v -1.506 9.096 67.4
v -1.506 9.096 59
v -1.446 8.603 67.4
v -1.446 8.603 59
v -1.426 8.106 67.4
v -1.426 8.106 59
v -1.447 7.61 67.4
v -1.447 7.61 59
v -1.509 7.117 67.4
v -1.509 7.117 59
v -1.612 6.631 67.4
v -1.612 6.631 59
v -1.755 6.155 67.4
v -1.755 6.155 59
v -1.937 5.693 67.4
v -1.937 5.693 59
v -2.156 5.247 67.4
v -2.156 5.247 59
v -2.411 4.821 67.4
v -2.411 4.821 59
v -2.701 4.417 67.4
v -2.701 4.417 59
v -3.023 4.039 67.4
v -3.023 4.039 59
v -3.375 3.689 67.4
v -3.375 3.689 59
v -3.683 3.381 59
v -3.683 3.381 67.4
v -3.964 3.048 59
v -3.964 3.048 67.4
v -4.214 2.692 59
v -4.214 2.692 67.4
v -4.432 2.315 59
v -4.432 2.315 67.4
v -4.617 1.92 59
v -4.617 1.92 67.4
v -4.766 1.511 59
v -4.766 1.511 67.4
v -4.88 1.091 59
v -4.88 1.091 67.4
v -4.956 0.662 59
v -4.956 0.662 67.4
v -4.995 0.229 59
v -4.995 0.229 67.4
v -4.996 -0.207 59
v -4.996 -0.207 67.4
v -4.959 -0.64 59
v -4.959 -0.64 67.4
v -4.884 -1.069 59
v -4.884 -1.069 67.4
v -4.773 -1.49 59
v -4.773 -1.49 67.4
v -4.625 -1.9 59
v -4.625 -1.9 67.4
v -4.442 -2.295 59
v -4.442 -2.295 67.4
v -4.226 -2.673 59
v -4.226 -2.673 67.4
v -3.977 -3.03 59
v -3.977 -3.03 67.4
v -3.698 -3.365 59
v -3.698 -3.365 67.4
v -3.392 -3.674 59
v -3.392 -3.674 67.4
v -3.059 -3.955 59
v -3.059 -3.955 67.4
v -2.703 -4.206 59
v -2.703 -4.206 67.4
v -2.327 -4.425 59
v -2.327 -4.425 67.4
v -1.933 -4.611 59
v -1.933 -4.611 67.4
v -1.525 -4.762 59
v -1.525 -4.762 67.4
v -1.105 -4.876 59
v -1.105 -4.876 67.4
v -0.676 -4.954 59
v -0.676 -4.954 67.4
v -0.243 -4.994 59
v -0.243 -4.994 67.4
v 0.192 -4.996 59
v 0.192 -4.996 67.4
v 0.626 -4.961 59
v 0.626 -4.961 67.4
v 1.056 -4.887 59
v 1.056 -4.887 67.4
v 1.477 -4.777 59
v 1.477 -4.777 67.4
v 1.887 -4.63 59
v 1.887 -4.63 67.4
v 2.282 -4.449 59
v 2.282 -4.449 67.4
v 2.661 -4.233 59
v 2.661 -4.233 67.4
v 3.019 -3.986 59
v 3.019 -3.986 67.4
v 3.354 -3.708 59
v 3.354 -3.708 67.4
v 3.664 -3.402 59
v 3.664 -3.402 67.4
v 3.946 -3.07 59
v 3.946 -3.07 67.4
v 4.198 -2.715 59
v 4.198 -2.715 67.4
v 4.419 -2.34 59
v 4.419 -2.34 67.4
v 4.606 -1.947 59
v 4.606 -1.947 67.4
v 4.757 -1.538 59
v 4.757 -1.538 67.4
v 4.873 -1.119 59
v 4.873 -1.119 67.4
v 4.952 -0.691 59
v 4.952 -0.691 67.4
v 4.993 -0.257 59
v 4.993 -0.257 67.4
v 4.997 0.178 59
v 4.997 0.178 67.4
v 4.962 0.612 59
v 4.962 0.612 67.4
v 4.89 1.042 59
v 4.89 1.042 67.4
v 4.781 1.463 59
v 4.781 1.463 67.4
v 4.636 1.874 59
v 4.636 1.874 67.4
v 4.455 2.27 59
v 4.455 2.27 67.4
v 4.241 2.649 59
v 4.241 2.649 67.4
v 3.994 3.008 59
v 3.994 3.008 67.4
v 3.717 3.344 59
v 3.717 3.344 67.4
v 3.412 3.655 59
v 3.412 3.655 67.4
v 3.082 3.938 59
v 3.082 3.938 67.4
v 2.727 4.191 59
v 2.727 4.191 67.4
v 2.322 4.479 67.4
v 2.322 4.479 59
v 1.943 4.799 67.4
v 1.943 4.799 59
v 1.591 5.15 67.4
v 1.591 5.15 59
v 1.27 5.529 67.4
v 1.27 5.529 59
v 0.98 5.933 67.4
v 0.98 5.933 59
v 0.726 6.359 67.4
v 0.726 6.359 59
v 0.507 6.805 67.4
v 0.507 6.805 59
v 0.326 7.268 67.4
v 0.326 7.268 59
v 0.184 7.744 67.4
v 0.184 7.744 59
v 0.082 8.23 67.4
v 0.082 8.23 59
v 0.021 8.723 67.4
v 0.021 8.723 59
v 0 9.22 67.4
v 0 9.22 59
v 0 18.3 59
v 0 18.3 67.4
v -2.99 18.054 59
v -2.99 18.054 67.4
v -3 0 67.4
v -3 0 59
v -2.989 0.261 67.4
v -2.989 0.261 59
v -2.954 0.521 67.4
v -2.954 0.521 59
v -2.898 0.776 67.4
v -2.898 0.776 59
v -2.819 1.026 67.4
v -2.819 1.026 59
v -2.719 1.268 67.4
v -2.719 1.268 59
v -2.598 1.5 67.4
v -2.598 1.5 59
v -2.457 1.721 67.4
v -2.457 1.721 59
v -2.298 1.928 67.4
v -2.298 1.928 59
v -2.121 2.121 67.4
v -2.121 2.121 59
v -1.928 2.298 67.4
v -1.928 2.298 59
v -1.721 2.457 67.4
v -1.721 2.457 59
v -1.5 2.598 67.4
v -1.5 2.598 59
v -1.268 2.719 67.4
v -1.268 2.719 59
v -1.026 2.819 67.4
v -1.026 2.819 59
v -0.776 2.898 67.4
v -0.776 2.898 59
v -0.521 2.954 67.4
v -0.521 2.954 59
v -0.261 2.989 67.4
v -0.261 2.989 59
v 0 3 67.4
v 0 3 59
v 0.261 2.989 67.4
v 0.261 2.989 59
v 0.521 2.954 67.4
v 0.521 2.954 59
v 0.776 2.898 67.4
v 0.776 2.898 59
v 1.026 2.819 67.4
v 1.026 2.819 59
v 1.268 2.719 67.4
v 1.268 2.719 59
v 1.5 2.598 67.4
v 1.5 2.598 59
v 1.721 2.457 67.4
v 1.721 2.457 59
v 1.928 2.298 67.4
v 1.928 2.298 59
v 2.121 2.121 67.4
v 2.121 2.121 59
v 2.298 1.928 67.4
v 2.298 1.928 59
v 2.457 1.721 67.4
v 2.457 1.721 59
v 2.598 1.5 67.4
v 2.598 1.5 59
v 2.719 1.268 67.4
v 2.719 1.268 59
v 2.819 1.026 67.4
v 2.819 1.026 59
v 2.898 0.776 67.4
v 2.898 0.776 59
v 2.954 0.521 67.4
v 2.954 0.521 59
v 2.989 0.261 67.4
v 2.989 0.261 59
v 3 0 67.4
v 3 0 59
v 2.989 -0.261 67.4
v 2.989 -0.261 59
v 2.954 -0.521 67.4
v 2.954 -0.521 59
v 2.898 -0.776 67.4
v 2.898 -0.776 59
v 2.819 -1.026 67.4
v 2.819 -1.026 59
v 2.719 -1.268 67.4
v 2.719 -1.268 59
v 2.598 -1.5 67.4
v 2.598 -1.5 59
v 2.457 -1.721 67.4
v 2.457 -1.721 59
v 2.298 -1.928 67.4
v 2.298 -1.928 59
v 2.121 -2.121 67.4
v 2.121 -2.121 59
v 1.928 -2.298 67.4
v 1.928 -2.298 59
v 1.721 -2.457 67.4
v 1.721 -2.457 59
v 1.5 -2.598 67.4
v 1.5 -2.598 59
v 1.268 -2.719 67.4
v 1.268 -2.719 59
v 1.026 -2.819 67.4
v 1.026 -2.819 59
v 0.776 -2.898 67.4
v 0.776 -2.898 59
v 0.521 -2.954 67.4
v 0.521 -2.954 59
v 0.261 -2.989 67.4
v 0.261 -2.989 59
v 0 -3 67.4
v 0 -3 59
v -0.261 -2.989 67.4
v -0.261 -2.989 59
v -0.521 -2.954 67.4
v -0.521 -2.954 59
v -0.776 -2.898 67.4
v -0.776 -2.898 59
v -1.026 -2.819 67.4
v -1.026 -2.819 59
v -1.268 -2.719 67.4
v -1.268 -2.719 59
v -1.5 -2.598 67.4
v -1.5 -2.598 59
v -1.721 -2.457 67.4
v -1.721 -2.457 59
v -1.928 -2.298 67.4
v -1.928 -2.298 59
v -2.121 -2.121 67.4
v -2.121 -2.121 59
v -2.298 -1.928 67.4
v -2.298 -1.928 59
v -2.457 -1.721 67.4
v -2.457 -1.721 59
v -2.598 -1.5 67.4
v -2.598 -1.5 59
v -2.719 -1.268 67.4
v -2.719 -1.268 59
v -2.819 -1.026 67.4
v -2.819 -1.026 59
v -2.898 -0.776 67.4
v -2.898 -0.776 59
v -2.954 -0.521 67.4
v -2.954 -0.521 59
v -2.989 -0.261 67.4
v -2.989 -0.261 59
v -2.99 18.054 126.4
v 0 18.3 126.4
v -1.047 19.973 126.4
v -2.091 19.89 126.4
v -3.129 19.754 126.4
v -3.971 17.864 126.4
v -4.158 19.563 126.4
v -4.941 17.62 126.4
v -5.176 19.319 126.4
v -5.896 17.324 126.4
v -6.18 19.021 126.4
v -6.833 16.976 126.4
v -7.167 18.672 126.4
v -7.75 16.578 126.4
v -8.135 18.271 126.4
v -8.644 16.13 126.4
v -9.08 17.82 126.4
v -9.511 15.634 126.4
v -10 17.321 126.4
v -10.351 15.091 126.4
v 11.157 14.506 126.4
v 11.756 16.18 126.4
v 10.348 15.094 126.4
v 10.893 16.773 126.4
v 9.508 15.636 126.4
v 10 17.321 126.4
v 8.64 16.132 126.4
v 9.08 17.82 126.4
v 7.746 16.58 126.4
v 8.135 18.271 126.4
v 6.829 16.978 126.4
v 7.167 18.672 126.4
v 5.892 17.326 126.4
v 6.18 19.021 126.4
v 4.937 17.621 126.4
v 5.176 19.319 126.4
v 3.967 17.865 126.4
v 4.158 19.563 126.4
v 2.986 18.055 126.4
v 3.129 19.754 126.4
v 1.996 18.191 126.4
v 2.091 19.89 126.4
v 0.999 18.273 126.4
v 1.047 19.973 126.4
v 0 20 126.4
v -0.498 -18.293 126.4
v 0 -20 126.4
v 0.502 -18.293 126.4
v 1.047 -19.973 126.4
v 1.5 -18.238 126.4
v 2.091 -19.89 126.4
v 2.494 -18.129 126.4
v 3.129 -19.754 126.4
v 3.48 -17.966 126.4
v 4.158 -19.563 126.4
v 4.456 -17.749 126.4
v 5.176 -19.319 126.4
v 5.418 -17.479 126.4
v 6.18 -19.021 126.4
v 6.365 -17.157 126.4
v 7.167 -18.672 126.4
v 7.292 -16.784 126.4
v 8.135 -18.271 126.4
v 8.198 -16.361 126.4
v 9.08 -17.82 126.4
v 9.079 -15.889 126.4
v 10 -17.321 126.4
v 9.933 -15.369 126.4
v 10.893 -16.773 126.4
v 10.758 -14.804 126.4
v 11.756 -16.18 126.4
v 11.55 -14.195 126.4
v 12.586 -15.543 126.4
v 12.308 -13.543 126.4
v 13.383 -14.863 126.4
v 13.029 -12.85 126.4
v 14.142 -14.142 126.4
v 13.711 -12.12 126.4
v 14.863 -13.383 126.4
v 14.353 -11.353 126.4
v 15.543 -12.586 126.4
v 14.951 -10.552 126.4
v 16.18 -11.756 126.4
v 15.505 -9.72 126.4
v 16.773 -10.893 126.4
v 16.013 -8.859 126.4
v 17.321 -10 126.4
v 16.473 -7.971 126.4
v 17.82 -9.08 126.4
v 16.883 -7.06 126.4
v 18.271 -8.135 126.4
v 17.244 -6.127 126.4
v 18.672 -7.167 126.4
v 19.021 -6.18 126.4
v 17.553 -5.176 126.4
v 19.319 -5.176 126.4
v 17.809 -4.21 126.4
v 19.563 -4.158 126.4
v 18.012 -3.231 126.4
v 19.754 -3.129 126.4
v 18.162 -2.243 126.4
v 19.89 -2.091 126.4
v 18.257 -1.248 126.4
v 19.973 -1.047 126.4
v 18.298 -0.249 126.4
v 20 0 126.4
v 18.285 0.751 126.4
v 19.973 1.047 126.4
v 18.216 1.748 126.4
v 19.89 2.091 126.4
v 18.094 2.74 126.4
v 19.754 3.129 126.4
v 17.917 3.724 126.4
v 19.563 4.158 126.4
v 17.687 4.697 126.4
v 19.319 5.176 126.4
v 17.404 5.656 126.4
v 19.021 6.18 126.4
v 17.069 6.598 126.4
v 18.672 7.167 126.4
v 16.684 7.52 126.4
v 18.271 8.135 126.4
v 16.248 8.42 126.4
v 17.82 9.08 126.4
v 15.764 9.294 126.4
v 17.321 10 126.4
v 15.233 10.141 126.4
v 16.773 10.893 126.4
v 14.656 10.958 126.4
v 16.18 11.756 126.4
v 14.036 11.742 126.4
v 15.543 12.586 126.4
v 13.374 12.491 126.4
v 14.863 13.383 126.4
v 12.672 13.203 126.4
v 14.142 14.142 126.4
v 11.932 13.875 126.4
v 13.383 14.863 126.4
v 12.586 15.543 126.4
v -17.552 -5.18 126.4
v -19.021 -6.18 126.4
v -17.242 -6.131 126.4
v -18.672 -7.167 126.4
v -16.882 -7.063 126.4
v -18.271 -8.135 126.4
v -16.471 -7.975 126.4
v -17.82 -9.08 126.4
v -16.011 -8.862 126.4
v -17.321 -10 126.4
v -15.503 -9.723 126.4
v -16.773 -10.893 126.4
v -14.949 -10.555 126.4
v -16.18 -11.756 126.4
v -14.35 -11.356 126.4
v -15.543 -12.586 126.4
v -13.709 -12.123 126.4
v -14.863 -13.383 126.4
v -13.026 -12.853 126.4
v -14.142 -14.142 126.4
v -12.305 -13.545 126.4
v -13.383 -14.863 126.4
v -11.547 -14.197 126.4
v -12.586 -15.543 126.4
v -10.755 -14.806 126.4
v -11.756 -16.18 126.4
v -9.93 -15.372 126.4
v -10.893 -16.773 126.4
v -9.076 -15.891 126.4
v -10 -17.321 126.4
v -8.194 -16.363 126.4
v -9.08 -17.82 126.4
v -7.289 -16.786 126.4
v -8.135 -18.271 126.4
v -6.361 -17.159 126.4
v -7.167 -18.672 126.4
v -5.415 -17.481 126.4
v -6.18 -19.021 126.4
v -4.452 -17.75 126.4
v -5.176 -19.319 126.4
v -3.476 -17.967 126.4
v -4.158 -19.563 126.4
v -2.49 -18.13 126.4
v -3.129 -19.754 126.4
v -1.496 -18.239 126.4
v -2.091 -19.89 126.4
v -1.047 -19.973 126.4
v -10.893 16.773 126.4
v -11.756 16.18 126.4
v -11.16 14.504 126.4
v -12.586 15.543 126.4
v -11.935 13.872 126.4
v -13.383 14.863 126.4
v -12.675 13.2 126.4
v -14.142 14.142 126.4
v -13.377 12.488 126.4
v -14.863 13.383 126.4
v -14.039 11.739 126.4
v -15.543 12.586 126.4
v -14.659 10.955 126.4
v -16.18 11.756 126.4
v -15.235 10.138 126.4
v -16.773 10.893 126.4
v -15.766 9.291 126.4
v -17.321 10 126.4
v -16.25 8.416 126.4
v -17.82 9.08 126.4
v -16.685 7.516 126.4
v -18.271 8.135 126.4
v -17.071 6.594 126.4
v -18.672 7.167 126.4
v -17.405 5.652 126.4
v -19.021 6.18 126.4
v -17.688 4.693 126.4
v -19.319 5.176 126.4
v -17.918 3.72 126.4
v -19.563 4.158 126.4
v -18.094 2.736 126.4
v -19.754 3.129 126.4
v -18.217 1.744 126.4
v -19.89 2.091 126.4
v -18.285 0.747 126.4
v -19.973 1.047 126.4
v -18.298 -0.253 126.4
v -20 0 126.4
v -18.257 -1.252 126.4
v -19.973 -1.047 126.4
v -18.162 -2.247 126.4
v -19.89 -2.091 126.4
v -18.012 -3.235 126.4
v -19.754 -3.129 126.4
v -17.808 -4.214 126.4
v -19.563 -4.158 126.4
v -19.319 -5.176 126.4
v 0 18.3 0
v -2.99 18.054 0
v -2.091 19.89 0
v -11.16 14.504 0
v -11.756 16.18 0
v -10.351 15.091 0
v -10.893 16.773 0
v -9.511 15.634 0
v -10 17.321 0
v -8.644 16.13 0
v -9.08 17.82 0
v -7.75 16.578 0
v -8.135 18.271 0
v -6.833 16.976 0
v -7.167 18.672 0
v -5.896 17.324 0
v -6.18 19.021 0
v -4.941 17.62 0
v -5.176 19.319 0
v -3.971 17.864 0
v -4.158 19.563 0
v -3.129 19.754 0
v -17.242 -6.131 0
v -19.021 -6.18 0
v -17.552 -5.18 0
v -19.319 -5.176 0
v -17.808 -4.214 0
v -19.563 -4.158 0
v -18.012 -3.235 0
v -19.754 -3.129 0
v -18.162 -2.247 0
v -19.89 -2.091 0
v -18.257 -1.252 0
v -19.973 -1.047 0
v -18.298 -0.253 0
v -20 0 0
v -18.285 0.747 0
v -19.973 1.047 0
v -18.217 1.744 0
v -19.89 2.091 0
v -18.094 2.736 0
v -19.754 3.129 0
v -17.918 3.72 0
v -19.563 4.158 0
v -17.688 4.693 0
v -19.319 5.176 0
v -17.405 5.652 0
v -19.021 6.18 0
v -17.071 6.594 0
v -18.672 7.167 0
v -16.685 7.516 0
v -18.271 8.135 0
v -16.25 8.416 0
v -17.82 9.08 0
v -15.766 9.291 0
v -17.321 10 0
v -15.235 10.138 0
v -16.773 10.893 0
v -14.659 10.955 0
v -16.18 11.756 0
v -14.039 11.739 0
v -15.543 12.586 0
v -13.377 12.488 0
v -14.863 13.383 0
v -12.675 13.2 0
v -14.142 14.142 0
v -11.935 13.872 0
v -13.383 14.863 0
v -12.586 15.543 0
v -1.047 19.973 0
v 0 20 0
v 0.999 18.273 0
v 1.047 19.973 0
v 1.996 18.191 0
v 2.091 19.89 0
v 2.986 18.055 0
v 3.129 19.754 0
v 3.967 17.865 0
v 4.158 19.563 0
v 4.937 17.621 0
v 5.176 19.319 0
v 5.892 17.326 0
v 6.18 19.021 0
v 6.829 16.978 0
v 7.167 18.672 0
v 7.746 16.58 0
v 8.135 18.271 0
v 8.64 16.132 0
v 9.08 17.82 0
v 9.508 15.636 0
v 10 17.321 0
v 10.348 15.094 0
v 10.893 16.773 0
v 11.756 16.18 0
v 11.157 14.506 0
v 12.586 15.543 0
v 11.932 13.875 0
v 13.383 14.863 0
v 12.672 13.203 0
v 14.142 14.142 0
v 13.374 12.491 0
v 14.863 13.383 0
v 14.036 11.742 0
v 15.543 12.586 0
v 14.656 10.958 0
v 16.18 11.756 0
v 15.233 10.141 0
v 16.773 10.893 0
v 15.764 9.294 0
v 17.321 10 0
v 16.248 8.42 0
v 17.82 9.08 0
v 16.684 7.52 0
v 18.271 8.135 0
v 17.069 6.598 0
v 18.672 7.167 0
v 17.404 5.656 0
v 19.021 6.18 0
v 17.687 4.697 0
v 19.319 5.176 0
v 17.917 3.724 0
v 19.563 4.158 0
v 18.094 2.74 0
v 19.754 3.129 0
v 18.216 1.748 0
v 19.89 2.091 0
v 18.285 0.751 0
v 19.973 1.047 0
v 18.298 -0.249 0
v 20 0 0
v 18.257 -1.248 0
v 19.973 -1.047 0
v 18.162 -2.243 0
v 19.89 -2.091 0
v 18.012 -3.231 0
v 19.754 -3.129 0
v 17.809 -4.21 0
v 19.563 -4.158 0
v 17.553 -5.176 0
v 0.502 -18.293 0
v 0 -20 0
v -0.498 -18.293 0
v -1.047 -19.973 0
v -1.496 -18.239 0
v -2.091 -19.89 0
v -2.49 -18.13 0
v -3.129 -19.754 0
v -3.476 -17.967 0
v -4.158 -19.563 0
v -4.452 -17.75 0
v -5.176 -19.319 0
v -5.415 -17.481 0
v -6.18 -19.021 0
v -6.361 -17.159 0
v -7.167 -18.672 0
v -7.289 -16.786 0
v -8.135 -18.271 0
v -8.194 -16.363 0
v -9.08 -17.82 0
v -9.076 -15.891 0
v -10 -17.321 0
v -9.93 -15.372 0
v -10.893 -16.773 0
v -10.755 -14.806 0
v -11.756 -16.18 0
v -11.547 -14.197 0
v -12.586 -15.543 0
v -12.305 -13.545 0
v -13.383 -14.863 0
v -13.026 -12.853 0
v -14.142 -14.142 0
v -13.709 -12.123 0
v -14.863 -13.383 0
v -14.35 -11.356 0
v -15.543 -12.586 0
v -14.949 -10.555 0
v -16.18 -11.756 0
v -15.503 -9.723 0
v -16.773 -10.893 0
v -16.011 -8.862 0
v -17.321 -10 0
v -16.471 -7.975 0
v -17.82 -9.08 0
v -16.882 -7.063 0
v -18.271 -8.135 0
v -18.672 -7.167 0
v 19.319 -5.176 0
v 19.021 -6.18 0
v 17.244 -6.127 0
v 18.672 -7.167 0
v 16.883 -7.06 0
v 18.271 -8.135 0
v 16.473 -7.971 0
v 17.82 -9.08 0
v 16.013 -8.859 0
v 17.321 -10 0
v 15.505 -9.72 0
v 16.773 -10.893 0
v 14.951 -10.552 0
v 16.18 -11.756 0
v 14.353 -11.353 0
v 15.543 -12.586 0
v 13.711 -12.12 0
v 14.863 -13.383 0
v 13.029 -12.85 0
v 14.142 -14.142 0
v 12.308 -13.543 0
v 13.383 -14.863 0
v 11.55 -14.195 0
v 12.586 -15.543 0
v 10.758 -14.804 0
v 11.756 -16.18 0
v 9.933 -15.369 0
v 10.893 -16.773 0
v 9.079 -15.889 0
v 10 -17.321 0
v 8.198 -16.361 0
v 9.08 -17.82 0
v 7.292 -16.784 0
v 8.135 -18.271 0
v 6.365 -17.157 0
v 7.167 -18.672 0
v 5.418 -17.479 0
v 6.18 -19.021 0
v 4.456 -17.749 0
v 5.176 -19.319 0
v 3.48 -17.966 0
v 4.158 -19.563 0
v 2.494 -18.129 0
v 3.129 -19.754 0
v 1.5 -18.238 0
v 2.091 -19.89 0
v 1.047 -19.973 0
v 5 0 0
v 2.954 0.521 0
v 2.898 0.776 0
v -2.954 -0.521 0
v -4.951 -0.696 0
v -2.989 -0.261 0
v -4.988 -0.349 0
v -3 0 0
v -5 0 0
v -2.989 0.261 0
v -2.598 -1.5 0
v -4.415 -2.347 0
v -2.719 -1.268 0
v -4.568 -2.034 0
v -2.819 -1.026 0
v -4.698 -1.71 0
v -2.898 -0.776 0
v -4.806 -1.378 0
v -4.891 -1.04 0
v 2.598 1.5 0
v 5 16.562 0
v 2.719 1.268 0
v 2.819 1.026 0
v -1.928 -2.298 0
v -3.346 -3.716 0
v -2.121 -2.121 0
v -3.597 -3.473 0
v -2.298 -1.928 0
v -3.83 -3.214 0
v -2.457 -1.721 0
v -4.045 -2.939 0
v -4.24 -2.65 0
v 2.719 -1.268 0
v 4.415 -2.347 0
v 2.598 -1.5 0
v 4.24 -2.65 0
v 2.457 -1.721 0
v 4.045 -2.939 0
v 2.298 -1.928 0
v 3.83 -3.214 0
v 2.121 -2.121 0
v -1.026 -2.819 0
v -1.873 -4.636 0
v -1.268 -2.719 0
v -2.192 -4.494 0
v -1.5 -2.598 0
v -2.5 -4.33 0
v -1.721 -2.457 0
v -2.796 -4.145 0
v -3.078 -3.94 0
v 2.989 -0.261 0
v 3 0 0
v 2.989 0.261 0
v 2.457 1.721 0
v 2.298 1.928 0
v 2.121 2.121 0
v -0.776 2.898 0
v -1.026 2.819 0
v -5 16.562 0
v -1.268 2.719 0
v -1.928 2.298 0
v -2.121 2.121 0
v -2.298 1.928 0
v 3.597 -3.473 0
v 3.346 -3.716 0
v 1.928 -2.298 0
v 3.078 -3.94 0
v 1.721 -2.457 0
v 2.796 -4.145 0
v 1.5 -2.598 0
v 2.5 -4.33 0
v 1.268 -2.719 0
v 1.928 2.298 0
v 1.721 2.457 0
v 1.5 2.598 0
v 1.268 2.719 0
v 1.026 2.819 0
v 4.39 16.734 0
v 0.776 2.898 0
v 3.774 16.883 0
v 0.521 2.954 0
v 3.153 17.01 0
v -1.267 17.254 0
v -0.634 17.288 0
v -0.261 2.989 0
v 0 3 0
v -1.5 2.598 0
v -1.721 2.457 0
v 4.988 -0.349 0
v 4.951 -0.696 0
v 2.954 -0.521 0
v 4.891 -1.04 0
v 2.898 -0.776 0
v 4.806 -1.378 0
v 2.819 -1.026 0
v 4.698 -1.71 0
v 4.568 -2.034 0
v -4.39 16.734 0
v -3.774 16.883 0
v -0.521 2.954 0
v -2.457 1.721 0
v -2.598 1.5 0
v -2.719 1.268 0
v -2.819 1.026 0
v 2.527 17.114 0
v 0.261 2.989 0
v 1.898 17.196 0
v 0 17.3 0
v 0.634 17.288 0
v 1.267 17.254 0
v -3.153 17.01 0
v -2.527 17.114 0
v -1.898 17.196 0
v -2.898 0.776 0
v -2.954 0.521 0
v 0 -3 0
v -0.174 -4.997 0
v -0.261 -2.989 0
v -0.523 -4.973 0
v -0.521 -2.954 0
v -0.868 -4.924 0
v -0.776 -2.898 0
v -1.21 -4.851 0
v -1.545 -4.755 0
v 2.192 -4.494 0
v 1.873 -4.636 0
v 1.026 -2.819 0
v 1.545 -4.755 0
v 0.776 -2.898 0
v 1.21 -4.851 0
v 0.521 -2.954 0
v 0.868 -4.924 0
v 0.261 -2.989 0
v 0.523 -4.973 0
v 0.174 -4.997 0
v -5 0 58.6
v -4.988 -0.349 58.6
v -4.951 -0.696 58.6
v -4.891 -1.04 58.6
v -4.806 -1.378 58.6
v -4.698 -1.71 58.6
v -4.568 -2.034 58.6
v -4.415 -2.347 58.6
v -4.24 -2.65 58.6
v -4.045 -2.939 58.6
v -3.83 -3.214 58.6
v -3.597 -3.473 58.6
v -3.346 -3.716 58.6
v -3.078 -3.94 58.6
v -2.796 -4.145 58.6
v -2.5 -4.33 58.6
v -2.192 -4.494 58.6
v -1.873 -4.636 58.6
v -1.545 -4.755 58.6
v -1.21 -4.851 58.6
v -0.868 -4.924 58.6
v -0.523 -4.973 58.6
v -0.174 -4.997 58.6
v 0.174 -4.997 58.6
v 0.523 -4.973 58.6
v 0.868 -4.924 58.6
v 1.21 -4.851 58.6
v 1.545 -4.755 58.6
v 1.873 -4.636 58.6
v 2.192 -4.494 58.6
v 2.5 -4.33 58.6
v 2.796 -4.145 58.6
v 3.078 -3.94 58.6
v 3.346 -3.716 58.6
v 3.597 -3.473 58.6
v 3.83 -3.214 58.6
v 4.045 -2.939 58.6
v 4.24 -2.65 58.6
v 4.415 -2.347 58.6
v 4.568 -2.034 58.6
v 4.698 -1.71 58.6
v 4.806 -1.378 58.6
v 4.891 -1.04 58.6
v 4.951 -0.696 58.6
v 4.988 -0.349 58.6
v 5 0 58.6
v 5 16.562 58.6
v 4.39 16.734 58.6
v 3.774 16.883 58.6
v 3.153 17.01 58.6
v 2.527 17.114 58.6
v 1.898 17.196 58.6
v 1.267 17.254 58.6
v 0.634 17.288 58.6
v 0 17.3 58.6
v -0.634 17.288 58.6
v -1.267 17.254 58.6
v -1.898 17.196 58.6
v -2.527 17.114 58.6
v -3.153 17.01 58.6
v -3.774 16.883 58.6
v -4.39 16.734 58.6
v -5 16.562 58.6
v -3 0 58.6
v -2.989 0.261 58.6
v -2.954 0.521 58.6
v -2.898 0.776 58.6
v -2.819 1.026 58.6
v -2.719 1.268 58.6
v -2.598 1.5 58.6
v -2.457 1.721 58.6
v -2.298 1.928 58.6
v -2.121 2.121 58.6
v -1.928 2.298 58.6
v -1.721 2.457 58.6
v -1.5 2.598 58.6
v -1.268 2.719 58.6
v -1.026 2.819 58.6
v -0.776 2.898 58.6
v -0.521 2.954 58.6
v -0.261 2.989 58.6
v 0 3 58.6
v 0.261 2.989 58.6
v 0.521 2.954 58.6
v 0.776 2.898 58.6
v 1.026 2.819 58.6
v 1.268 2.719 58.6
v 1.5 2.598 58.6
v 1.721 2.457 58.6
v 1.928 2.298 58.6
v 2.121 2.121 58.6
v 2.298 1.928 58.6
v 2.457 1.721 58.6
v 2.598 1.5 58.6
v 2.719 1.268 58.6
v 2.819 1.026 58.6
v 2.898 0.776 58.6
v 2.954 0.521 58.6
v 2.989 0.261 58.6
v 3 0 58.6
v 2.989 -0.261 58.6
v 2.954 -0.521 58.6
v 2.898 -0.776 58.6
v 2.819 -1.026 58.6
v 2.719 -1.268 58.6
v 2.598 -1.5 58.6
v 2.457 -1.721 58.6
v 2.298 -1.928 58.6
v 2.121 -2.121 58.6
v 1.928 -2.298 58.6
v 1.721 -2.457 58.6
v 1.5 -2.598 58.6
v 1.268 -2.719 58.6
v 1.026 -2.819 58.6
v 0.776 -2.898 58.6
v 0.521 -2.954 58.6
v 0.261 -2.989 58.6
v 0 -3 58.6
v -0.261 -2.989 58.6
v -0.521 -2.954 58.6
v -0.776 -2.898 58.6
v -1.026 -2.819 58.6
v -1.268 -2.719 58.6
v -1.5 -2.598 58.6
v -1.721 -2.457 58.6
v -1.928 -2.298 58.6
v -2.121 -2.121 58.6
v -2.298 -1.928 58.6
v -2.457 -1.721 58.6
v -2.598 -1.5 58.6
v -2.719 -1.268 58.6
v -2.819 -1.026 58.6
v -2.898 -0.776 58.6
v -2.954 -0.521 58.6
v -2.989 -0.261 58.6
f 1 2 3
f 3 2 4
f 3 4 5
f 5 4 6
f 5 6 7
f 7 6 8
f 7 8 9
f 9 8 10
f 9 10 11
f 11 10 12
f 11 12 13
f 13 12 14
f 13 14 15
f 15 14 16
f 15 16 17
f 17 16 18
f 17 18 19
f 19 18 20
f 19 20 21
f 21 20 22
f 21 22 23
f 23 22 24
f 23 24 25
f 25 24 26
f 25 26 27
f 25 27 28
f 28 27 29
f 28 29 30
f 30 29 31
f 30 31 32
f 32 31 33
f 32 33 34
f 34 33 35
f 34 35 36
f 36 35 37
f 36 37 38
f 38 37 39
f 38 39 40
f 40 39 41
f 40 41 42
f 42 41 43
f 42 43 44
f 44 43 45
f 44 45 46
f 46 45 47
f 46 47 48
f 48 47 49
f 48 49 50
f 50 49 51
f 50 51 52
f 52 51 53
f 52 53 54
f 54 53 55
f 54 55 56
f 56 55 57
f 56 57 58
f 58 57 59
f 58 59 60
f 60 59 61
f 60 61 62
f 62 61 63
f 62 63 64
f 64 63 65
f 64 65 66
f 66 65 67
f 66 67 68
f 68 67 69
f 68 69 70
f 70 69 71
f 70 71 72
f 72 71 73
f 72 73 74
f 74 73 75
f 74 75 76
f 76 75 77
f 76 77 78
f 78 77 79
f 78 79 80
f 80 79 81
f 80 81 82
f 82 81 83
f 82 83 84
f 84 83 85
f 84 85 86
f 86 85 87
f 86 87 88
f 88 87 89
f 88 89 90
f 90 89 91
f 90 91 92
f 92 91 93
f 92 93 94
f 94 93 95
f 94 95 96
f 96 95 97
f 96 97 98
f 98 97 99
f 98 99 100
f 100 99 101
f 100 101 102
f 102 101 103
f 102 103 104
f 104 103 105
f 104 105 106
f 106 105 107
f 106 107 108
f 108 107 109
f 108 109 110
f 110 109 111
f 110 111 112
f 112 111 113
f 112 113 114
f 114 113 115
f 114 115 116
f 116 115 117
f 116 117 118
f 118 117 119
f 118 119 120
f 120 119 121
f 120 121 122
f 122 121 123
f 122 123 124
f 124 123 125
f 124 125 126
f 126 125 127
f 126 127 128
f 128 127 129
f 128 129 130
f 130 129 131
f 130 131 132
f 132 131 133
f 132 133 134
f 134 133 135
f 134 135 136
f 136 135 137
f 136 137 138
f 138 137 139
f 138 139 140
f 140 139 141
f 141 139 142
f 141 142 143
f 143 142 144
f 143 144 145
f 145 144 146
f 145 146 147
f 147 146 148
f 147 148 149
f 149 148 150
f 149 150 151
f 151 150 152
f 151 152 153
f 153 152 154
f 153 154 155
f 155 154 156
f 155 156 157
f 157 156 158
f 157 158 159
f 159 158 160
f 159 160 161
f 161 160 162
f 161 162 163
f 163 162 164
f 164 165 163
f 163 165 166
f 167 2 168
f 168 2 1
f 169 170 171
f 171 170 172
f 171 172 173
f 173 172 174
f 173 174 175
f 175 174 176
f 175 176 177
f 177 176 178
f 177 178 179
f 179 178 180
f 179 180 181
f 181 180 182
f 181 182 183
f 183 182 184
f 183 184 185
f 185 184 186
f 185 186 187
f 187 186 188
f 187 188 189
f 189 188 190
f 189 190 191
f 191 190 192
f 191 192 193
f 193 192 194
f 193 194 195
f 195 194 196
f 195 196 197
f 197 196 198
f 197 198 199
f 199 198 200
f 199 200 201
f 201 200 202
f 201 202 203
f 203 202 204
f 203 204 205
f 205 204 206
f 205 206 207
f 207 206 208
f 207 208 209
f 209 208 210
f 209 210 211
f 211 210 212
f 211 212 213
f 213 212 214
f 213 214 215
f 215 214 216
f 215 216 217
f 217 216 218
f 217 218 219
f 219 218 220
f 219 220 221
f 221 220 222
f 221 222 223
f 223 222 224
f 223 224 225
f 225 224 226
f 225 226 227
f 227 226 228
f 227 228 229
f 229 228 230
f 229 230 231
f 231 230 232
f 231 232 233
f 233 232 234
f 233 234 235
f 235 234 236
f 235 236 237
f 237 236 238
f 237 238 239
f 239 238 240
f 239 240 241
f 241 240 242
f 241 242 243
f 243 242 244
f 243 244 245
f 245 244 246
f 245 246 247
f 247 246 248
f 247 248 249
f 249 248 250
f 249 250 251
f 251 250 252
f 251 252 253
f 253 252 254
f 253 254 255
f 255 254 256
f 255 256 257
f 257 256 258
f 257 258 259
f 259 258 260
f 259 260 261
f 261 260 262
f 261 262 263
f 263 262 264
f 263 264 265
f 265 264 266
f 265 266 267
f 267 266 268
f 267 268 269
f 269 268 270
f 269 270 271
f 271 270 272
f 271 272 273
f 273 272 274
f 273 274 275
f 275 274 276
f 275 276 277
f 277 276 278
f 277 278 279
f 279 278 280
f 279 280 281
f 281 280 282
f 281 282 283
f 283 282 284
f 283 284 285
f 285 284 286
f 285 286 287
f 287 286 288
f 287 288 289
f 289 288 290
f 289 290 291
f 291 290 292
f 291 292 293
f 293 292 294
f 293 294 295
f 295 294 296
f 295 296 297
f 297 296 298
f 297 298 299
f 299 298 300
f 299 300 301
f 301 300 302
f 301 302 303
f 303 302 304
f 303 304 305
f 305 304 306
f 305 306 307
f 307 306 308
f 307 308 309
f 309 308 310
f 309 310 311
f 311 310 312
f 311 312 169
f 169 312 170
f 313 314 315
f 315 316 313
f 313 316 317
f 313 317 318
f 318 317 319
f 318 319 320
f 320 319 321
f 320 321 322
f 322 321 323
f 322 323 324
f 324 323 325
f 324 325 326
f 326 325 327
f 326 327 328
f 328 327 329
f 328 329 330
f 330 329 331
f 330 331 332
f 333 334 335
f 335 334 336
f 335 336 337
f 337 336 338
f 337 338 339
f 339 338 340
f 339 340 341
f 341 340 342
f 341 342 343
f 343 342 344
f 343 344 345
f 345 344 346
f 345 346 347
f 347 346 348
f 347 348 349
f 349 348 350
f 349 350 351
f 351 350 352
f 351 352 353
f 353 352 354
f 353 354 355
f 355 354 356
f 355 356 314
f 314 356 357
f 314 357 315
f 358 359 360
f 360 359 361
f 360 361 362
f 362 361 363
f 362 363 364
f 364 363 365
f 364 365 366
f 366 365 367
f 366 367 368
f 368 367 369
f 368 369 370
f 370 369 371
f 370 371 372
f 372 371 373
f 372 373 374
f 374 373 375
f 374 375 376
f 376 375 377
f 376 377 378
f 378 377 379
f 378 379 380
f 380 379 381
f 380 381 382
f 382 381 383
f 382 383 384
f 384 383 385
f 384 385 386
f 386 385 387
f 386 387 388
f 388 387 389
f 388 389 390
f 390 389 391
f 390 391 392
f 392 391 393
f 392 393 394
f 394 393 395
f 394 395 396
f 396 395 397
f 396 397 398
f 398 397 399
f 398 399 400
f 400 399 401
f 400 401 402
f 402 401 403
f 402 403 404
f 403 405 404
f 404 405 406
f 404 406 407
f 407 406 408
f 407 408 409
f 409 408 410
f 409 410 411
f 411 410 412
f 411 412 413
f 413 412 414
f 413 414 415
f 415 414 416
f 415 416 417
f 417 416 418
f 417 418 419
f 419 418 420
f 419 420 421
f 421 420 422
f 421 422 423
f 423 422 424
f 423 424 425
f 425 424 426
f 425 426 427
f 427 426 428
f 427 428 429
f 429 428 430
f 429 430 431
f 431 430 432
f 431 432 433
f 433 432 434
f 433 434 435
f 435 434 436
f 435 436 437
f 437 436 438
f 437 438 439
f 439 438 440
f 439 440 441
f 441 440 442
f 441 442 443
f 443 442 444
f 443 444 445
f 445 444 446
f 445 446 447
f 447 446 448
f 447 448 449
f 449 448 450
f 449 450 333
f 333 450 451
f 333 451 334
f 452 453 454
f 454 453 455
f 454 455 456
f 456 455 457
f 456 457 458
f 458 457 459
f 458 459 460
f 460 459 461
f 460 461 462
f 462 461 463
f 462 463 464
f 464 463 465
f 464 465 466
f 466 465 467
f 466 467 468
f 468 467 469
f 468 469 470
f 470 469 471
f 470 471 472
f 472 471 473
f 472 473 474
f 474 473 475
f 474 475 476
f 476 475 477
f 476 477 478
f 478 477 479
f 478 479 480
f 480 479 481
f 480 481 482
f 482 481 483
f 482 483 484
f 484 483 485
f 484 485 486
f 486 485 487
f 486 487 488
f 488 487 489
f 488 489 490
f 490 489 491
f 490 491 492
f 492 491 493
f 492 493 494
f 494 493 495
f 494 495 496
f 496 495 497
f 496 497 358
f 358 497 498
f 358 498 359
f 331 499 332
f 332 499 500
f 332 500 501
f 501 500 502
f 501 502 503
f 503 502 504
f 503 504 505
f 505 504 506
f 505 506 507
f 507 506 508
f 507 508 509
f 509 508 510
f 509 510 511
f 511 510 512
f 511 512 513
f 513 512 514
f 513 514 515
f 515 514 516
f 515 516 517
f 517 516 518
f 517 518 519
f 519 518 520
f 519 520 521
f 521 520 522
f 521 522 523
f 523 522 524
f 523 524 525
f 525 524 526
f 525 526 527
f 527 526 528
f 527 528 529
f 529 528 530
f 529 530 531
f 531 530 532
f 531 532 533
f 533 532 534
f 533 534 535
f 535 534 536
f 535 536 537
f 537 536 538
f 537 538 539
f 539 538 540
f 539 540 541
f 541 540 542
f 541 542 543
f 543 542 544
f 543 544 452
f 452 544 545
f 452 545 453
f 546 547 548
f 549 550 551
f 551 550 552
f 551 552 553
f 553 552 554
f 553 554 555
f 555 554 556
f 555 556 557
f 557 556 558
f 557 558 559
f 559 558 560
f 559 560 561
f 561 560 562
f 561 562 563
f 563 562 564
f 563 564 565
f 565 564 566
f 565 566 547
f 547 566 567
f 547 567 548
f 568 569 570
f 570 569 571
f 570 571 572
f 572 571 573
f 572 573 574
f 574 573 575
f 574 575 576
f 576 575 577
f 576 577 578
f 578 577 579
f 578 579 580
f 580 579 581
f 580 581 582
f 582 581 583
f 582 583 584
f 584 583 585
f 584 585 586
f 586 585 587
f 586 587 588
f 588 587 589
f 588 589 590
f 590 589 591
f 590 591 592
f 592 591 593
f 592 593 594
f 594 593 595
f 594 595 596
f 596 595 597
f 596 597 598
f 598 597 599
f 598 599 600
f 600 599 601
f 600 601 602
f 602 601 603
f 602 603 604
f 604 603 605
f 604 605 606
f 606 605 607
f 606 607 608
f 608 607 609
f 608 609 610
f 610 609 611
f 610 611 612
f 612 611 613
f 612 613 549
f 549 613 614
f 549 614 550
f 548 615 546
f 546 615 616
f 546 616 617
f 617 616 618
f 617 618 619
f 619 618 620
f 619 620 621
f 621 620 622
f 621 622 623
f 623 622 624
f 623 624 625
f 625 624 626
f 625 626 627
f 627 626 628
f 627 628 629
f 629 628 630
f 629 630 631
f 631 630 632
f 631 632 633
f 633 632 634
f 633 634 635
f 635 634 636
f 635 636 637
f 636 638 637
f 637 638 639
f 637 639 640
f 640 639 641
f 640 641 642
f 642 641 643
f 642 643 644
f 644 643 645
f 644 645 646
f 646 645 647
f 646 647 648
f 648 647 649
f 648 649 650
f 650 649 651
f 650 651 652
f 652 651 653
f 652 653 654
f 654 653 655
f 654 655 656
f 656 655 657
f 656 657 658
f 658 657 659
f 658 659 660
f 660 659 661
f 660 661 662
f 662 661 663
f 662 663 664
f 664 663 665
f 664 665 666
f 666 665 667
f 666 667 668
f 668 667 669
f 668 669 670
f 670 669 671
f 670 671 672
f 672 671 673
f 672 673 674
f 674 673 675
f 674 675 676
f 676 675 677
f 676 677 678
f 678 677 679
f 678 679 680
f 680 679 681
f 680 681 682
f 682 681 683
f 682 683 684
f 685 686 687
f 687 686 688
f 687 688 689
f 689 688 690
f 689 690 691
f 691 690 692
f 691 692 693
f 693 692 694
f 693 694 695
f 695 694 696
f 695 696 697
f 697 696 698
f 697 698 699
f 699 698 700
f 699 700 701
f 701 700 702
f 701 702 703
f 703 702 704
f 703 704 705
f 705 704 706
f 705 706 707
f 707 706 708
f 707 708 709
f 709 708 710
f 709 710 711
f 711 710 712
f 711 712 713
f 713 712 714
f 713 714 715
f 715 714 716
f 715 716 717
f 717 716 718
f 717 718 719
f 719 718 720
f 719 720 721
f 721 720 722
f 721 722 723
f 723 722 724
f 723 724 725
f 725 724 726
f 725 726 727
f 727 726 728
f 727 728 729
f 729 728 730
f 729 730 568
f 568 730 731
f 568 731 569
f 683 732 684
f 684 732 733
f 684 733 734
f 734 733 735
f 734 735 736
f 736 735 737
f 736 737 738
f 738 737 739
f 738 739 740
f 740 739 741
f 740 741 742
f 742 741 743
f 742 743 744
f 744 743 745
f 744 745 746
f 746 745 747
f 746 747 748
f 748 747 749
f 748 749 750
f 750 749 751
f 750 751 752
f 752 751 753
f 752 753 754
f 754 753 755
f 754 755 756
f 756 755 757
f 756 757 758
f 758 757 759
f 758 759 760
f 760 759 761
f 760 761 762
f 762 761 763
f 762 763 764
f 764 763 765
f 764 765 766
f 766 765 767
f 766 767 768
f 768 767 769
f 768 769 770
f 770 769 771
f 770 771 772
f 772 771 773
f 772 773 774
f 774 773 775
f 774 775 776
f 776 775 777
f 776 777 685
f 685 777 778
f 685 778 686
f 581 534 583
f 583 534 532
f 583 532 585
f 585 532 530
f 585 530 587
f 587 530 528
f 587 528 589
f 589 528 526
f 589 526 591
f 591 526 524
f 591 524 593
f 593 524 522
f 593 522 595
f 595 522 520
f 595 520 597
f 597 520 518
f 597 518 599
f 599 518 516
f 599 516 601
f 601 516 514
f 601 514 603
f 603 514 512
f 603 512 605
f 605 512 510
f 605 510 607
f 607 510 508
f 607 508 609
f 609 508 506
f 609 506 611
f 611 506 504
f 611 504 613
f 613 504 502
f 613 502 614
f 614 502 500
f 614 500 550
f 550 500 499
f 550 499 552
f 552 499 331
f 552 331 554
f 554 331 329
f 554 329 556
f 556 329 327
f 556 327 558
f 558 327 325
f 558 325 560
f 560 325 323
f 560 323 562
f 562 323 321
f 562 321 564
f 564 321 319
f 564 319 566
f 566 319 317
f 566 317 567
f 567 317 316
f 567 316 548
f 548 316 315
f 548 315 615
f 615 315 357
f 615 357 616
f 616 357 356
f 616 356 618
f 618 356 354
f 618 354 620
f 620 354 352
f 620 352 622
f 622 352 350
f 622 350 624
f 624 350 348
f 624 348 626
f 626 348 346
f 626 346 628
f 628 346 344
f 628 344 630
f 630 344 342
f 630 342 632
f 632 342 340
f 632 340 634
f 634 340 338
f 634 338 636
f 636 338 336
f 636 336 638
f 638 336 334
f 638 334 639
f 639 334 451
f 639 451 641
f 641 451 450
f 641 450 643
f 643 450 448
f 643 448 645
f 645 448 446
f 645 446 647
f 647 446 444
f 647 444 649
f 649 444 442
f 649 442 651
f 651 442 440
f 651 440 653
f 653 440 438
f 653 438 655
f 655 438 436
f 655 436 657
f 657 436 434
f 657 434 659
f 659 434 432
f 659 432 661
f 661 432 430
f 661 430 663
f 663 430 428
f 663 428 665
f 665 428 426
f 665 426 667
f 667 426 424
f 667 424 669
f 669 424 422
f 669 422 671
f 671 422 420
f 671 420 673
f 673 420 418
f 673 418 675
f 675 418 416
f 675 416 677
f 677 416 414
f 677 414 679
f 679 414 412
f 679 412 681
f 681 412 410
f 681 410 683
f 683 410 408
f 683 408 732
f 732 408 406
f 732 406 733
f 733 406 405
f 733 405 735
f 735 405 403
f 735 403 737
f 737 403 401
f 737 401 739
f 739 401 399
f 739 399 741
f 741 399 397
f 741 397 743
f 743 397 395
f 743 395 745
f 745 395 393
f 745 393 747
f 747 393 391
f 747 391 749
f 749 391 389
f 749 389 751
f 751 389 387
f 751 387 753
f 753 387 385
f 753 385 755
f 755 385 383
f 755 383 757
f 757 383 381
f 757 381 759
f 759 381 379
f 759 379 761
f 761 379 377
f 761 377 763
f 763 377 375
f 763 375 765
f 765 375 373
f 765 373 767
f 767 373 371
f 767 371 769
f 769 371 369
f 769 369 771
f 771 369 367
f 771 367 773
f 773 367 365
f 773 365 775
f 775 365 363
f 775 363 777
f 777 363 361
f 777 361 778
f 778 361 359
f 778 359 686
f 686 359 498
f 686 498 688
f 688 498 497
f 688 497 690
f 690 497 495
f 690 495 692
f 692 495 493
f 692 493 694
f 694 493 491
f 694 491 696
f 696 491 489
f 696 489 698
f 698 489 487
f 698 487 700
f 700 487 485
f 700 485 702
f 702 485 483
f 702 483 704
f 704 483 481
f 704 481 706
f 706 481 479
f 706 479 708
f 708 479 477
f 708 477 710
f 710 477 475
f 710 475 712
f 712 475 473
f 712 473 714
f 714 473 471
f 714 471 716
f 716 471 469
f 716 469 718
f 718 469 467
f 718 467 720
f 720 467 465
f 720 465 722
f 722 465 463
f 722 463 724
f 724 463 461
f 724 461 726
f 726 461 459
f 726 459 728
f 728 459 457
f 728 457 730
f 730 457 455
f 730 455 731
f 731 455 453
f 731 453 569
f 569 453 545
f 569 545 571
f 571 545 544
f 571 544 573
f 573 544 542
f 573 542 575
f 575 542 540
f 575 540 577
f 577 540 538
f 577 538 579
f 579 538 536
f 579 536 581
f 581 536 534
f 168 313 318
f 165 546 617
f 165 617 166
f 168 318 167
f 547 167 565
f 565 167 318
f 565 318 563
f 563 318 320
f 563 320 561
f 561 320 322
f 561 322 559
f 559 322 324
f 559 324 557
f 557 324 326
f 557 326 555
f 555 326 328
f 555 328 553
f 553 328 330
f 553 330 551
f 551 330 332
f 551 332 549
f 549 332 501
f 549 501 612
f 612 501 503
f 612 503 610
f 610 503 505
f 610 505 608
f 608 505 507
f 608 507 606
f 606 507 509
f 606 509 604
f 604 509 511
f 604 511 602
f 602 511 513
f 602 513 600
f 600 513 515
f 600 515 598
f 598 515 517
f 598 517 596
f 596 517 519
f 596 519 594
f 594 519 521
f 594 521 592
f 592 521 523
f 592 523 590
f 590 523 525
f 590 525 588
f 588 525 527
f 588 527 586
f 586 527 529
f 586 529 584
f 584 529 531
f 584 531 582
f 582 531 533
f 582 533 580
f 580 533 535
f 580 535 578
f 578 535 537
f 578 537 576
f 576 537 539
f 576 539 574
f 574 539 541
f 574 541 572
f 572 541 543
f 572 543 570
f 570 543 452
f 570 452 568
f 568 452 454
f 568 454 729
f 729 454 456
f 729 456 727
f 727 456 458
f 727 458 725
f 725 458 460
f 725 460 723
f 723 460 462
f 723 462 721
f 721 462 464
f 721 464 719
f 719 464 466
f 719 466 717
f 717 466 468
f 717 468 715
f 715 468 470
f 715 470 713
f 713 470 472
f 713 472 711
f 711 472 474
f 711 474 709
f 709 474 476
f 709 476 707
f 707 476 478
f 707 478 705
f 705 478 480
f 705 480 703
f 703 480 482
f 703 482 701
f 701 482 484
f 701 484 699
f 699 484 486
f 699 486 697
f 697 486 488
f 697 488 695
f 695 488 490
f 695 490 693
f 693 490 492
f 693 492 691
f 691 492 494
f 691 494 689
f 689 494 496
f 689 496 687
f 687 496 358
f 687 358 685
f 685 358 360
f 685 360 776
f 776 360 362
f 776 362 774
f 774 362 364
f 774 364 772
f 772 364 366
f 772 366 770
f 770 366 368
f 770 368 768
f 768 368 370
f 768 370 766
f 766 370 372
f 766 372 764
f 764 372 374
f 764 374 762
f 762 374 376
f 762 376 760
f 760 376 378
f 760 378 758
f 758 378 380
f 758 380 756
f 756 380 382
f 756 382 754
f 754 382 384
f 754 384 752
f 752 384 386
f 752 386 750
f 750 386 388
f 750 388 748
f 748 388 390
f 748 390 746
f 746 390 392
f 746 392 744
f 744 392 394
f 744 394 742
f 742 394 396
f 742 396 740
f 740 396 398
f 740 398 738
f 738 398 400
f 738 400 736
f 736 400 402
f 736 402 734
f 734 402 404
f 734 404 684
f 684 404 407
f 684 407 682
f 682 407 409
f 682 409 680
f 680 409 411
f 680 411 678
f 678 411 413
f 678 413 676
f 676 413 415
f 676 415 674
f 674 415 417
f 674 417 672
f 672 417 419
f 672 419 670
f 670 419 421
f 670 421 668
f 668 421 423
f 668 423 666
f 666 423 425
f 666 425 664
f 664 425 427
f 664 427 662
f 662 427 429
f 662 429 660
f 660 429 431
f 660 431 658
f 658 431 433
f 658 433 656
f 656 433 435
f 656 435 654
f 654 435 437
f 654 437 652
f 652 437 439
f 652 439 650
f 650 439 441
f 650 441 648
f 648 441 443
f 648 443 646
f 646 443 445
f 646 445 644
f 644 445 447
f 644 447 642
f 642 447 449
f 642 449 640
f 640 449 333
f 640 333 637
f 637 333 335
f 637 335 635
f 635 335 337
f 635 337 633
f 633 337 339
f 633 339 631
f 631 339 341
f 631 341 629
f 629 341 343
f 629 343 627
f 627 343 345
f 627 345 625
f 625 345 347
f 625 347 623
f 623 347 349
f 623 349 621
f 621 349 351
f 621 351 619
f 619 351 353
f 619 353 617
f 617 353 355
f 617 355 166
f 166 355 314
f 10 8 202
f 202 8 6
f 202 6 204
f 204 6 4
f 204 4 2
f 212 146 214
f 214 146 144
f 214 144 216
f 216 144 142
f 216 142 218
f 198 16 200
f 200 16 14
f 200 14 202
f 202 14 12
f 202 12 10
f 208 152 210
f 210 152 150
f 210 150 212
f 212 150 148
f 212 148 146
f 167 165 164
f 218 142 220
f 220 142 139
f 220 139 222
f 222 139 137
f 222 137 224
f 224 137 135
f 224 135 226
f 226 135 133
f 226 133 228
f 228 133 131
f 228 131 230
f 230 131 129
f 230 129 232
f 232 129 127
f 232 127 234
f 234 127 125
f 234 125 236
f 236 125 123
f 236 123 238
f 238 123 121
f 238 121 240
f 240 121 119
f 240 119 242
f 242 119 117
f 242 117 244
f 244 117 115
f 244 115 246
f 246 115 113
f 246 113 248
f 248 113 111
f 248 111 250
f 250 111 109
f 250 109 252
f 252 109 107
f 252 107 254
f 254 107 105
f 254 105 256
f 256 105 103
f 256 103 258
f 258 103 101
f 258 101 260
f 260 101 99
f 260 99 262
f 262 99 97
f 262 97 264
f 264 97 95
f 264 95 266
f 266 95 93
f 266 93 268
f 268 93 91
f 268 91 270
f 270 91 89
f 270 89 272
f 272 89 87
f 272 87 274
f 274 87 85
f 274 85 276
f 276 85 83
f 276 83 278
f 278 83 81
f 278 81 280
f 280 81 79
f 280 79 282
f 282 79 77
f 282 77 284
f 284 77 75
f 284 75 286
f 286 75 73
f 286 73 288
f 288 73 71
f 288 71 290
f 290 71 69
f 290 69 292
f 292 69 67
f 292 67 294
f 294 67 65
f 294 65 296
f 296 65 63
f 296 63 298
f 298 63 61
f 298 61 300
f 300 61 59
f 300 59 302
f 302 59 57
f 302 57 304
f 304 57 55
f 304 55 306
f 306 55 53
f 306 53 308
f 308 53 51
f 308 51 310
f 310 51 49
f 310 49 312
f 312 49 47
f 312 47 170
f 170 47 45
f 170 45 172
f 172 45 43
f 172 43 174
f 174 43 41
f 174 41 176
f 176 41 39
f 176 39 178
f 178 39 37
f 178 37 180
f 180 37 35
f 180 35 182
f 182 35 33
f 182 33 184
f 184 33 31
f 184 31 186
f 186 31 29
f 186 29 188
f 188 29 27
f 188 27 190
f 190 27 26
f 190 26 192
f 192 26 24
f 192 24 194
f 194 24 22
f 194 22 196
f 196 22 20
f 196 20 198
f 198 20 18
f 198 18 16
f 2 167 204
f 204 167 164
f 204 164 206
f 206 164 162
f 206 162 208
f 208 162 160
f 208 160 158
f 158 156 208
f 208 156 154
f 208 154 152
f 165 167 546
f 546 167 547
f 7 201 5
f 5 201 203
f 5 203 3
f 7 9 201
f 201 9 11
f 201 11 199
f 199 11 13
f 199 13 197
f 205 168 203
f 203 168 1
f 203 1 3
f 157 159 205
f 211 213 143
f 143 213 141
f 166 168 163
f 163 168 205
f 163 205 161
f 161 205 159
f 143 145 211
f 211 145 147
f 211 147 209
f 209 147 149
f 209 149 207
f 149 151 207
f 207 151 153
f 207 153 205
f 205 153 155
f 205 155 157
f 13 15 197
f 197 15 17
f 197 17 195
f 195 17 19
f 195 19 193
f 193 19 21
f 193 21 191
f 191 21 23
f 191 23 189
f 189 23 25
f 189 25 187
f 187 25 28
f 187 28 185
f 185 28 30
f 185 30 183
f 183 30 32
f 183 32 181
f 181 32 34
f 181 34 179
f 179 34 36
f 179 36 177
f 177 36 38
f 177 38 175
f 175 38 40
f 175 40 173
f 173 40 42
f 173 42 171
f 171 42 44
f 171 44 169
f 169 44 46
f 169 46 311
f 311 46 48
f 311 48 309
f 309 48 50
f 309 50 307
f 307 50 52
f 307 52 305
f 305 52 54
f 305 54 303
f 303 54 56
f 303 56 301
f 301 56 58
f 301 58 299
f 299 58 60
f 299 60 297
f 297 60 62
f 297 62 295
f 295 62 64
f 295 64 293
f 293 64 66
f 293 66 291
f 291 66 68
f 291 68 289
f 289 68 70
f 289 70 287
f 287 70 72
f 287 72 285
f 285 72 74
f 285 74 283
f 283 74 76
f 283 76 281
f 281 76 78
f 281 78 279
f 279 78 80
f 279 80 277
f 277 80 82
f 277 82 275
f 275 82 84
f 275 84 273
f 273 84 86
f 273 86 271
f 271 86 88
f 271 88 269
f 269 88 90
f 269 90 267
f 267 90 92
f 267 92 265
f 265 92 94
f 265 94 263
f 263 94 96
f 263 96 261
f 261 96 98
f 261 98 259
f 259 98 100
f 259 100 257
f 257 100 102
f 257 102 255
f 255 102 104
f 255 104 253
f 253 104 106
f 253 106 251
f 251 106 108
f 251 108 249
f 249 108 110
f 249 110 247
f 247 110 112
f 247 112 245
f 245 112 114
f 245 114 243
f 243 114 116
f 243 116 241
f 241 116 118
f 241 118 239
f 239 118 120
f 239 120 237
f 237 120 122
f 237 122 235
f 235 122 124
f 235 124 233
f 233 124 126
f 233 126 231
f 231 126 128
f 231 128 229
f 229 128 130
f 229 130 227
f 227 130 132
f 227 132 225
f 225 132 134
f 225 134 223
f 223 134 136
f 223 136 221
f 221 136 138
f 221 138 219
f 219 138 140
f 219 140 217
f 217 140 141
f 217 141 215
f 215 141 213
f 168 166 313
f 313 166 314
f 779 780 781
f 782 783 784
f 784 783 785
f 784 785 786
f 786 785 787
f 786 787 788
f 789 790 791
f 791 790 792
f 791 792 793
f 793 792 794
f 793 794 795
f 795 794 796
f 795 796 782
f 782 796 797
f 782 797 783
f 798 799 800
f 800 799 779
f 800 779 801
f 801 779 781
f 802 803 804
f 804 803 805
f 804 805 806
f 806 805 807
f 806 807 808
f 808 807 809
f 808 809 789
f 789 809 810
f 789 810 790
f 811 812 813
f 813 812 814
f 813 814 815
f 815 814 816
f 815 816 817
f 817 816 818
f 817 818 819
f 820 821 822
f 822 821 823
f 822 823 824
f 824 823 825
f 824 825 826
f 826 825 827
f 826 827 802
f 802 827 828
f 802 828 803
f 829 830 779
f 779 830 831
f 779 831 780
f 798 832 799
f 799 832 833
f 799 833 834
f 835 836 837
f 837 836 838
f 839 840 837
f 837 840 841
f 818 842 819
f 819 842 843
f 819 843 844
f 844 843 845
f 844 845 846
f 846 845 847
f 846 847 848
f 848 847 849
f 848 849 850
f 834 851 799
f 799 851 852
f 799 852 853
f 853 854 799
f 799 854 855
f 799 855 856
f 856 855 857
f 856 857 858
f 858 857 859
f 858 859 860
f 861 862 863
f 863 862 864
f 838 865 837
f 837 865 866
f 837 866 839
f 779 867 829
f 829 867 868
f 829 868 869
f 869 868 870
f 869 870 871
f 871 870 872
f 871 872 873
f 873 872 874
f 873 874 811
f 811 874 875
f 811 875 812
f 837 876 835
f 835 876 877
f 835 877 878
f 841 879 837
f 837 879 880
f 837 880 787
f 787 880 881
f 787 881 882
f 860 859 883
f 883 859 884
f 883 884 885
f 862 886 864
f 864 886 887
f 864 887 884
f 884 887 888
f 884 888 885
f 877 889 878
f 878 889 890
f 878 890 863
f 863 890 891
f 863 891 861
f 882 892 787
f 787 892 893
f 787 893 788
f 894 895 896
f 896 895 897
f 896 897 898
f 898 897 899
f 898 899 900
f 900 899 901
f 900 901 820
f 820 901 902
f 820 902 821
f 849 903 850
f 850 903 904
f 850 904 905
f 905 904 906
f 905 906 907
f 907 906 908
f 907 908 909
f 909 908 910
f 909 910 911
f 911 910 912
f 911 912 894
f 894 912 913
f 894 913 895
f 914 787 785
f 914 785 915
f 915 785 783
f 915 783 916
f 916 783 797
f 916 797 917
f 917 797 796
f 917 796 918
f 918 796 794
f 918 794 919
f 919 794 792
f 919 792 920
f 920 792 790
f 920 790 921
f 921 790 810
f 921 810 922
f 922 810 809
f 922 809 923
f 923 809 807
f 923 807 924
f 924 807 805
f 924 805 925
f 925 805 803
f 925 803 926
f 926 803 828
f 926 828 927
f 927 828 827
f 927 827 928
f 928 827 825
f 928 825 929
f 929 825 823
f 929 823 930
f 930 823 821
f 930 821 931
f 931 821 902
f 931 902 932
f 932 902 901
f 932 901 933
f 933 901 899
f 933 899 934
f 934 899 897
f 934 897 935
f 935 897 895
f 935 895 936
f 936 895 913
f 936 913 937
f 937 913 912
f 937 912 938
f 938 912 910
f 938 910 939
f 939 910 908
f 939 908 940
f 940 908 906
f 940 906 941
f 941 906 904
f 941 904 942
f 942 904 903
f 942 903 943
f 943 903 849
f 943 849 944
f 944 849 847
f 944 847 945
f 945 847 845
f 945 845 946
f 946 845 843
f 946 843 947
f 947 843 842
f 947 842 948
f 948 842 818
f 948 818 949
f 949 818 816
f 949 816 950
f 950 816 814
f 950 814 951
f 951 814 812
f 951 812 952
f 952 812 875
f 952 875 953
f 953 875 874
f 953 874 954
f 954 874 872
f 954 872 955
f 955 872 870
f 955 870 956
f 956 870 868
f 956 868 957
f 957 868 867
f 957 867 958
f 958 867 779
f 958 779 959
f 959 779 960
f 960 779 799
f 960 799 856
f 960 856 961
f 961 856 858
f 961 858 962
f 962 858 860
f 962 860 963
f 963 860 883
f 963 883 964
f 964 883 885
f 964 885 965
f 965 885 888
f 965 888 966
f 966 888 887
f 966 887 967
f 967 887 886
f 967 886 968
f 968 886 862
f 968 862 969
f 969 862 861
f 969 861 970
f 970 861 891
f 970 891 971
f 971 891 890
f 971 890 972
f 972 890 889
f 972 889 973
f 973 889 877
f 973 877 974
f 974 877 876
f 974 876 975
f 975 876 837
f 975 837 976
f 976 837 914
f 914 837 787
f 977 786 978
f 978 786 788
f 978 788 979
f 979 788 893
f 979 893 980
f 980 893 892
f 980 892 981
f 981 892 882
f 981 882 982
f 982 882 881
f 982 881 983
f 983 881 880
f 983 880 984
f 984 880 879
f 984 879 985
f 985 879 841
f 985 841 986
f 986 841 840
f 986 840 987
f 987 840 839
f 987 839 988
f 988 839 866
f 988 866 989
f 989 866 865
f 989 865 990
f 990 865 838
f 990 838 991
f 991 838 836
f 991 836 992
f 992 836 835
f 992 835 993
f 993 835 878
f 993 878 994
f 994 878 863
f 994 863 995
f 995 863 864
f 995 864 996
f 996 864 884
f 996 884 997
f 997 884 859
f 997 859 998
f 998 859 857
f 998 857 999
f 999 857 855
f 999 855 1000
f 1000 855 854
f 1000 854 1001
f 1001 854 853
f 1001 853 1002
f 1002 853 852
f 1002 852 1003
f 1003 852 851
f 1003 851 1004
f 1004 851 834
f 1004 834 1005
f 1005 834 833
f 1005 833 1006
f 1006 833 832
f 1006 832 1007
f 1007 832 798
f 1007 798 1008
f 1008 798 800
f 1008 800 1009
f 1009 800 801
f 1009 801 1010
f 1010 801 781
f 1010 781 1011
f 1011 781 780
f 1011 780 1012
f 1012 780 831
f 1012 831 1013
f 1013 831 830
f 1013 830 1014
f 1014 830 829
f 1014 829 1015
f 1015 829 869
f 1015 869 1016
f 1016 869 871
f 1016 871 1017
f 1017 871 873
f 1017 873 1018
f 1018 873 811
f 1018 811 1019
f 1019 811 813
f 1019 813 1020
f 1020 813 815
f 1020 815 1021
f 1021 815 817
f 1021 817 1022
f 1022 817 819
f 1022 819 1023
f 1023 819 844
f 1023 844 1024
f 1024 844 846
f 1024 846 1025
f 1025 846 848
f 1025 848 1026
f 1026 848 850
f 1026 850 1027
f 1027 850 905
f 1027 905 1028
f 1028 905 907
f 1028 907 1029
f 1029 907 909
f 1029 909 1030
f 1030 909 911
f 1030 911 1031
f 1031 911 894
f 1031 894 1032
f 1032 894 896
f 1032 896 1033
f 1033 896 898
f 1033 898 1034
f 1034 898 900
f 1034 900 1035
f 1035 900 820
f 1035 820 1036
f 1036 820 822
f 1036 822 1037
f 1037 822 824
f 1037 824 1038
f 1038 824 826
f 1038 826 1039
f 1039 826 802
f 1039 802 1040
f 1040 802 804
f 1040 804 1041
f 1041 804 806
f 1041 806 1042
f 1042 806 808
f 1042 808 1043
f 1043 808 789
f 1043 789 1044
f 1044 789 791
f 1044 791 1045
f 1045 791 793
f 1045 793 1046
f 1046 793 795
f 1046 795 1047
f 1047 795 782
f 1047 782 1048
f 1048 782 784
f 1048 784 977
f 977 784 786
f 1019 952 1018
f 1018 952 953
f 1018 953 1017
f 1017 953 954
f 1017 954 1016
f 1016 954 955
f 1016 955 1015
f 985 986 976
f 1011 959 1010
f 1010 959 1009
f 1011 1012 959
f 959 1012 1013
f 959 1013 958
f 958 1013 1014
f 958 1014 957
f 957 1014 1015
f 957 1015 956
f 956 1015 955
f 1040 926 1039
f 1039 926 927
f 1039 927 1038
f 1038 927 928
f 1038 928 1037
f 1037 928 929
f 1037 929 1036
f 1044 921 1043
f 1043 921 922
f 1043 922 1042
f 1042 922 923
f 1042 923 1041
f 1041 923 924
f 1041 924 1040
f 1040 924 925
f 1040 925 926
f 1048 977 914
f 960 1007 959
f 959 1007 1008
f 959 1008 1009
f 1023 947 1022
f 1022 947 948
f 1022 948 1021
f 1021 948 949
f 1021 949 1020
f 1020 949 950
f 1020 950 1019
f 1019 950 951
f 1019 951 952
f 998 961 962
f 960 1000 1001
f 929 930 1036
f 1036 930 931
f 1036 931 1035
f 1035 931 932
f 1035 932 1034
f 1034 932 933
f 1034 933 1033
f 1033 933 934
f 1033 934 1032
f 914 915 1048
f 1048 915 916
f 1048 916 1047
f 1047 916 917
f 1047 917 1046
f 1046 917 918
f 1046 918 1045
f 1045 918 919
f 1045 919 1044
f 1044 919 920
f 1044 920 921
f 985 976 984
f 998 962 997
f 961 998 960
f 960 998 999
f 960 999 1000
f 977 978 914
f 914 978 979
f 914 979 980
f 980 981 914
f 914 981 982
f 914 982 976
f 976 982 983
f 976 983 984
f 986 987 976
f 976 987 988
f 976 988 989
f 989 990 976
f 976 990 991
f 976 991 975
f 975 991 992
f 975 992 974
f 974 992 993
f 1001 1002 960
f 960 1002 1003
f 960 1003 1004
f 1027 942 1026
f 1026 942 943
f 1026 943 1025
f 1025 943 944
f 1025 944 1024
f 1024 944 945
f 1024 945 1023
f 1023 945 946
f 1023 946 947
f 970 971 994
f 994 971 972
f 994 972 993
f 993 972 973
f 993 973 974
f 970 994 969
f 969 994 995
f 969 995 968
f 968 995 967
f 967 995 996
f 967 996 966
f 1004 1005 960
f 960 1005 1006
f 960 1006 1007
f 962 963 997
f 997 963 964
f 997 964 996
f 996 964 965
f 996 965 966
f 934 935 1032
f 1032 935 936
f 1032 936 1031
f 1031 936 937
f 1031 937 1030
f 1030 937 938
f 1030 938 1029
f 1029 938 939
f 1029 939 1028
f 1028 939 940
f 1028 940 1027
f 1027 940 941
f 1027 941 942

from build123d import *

# Parameters (mm, degrees)
SKETCH_2_R          = 20
SKETCH_2_R_2        = 18.3
EXTRUDE_1_DEPTH     = 126.4
SKETCH_5_R          = 3
EXTRUDE_3_DEPTH     = 126.4
CUT_EXTRUDE1_DEPTH  = 59
CUT_EXTRUDE2_DEPTH  = 59
SKETCH3_R           = 3
BOSS_EXTRUDE6_DEPTH = 58.6


with BuildPart() as part:
    # Эскиз2 → Бобышка-Вытянуть1 (new body)
    with BuildSketch(Plane.XY):
        Circle(SKETCH_2_R)
        Circle(SKETCH_2_R_2, mode=Mode.SUBTRACT)
    extrude(amount=EXTRUDE_1_DEPTH)

    # Эскиз5 → Бобышка-Вытянуть3 (add, through all)
    with BuildSketch(Plane(origin=(0, 0, 0), x_dir=(-1, 0, 0), z_dir=(0, 0, -1))):
        with BuildLine():
            Line((0, 18.3), (0, 9.219544457))
            ThreePointArc((0, 9.219544457), (-0.725705562, 6.35915669), (-2.727272727, 4.190702026))
            ThreePointArc((-2.727272727, 4.190702026), (-0.409836066, -4.983175132), (3.375314281, 3.688801093))
            ThreePointArc((3.375314281, 3.688801093), (1.754930846, 6.155139323), (1.506314907, 9.095659151))
            Line((1.506314907, 9.095659151), (2.989905079, 18.054098361))
            ThreePointArc((2.989905079, 18.054098361), (1.5, 18.238420984), (0, 18.3))
        make_face()
        Circle(SKETCH_5_R, mode=Mode.SUBTRACT)
    extrude(amount=-EXTRUDE_3_DEPTH)

    # Sketch1 → Cut-Extrude1 (cut)
    with BuildSketch(Plane(origin=(0, 0, 0), x_dir=(-1, 0, 0), z_dir=(0, 0, -1))):
        with BuildLine():
            Line((0, 18.3), (2.989905079, 18.054098361))
            ThreePointArc((2.989905079, 18.054098361), (-1.5, -18.238420984), (0, 18.3))
        make_face()
    extrude(amount=-CUT_EXTRUDE1_DEPTH, mode=Mode.SUBTRACT)

    # Sketch2 → Cut-Extrude2 (cut)
    with BuildSketch(Plane.XY.offset(126.4)):
        with BuildLine():
            Line((0, 18.3), (-2.989905079, 18.054098361))
            ThreePointArc((-2.989905079, 18.054098361), (1.5, -18.238420984), (0, 18.3))
        make_face()
    extrude(amount=-CUT_EXTRUDE2_DEPTH, mode=Mode.SUBTRACT)


with BuildPart() as body_2:
    # Sketch3 → Boss-Extrude6 (new body)
    with BuildSketch(Plane.XY):
        with BuildLine():
            Line((5, 0), (5, 16.561702811))
            ThreePointArc((5, 16.561702811), (0, 17.3), (-5, 16.561702811))
            Line((-5, 16.561702811), (-5, 0))
            ThreePointArc((-5, 0), (0, -5), (5, 0))
        make_face()
        Circle(SKETCH3_R, mode=Mode.SUBTRACT)
    extrude(amount=BOSS_EXTRUDE6_DEPTH)


solid = Compound([part.part, body_2.part])
